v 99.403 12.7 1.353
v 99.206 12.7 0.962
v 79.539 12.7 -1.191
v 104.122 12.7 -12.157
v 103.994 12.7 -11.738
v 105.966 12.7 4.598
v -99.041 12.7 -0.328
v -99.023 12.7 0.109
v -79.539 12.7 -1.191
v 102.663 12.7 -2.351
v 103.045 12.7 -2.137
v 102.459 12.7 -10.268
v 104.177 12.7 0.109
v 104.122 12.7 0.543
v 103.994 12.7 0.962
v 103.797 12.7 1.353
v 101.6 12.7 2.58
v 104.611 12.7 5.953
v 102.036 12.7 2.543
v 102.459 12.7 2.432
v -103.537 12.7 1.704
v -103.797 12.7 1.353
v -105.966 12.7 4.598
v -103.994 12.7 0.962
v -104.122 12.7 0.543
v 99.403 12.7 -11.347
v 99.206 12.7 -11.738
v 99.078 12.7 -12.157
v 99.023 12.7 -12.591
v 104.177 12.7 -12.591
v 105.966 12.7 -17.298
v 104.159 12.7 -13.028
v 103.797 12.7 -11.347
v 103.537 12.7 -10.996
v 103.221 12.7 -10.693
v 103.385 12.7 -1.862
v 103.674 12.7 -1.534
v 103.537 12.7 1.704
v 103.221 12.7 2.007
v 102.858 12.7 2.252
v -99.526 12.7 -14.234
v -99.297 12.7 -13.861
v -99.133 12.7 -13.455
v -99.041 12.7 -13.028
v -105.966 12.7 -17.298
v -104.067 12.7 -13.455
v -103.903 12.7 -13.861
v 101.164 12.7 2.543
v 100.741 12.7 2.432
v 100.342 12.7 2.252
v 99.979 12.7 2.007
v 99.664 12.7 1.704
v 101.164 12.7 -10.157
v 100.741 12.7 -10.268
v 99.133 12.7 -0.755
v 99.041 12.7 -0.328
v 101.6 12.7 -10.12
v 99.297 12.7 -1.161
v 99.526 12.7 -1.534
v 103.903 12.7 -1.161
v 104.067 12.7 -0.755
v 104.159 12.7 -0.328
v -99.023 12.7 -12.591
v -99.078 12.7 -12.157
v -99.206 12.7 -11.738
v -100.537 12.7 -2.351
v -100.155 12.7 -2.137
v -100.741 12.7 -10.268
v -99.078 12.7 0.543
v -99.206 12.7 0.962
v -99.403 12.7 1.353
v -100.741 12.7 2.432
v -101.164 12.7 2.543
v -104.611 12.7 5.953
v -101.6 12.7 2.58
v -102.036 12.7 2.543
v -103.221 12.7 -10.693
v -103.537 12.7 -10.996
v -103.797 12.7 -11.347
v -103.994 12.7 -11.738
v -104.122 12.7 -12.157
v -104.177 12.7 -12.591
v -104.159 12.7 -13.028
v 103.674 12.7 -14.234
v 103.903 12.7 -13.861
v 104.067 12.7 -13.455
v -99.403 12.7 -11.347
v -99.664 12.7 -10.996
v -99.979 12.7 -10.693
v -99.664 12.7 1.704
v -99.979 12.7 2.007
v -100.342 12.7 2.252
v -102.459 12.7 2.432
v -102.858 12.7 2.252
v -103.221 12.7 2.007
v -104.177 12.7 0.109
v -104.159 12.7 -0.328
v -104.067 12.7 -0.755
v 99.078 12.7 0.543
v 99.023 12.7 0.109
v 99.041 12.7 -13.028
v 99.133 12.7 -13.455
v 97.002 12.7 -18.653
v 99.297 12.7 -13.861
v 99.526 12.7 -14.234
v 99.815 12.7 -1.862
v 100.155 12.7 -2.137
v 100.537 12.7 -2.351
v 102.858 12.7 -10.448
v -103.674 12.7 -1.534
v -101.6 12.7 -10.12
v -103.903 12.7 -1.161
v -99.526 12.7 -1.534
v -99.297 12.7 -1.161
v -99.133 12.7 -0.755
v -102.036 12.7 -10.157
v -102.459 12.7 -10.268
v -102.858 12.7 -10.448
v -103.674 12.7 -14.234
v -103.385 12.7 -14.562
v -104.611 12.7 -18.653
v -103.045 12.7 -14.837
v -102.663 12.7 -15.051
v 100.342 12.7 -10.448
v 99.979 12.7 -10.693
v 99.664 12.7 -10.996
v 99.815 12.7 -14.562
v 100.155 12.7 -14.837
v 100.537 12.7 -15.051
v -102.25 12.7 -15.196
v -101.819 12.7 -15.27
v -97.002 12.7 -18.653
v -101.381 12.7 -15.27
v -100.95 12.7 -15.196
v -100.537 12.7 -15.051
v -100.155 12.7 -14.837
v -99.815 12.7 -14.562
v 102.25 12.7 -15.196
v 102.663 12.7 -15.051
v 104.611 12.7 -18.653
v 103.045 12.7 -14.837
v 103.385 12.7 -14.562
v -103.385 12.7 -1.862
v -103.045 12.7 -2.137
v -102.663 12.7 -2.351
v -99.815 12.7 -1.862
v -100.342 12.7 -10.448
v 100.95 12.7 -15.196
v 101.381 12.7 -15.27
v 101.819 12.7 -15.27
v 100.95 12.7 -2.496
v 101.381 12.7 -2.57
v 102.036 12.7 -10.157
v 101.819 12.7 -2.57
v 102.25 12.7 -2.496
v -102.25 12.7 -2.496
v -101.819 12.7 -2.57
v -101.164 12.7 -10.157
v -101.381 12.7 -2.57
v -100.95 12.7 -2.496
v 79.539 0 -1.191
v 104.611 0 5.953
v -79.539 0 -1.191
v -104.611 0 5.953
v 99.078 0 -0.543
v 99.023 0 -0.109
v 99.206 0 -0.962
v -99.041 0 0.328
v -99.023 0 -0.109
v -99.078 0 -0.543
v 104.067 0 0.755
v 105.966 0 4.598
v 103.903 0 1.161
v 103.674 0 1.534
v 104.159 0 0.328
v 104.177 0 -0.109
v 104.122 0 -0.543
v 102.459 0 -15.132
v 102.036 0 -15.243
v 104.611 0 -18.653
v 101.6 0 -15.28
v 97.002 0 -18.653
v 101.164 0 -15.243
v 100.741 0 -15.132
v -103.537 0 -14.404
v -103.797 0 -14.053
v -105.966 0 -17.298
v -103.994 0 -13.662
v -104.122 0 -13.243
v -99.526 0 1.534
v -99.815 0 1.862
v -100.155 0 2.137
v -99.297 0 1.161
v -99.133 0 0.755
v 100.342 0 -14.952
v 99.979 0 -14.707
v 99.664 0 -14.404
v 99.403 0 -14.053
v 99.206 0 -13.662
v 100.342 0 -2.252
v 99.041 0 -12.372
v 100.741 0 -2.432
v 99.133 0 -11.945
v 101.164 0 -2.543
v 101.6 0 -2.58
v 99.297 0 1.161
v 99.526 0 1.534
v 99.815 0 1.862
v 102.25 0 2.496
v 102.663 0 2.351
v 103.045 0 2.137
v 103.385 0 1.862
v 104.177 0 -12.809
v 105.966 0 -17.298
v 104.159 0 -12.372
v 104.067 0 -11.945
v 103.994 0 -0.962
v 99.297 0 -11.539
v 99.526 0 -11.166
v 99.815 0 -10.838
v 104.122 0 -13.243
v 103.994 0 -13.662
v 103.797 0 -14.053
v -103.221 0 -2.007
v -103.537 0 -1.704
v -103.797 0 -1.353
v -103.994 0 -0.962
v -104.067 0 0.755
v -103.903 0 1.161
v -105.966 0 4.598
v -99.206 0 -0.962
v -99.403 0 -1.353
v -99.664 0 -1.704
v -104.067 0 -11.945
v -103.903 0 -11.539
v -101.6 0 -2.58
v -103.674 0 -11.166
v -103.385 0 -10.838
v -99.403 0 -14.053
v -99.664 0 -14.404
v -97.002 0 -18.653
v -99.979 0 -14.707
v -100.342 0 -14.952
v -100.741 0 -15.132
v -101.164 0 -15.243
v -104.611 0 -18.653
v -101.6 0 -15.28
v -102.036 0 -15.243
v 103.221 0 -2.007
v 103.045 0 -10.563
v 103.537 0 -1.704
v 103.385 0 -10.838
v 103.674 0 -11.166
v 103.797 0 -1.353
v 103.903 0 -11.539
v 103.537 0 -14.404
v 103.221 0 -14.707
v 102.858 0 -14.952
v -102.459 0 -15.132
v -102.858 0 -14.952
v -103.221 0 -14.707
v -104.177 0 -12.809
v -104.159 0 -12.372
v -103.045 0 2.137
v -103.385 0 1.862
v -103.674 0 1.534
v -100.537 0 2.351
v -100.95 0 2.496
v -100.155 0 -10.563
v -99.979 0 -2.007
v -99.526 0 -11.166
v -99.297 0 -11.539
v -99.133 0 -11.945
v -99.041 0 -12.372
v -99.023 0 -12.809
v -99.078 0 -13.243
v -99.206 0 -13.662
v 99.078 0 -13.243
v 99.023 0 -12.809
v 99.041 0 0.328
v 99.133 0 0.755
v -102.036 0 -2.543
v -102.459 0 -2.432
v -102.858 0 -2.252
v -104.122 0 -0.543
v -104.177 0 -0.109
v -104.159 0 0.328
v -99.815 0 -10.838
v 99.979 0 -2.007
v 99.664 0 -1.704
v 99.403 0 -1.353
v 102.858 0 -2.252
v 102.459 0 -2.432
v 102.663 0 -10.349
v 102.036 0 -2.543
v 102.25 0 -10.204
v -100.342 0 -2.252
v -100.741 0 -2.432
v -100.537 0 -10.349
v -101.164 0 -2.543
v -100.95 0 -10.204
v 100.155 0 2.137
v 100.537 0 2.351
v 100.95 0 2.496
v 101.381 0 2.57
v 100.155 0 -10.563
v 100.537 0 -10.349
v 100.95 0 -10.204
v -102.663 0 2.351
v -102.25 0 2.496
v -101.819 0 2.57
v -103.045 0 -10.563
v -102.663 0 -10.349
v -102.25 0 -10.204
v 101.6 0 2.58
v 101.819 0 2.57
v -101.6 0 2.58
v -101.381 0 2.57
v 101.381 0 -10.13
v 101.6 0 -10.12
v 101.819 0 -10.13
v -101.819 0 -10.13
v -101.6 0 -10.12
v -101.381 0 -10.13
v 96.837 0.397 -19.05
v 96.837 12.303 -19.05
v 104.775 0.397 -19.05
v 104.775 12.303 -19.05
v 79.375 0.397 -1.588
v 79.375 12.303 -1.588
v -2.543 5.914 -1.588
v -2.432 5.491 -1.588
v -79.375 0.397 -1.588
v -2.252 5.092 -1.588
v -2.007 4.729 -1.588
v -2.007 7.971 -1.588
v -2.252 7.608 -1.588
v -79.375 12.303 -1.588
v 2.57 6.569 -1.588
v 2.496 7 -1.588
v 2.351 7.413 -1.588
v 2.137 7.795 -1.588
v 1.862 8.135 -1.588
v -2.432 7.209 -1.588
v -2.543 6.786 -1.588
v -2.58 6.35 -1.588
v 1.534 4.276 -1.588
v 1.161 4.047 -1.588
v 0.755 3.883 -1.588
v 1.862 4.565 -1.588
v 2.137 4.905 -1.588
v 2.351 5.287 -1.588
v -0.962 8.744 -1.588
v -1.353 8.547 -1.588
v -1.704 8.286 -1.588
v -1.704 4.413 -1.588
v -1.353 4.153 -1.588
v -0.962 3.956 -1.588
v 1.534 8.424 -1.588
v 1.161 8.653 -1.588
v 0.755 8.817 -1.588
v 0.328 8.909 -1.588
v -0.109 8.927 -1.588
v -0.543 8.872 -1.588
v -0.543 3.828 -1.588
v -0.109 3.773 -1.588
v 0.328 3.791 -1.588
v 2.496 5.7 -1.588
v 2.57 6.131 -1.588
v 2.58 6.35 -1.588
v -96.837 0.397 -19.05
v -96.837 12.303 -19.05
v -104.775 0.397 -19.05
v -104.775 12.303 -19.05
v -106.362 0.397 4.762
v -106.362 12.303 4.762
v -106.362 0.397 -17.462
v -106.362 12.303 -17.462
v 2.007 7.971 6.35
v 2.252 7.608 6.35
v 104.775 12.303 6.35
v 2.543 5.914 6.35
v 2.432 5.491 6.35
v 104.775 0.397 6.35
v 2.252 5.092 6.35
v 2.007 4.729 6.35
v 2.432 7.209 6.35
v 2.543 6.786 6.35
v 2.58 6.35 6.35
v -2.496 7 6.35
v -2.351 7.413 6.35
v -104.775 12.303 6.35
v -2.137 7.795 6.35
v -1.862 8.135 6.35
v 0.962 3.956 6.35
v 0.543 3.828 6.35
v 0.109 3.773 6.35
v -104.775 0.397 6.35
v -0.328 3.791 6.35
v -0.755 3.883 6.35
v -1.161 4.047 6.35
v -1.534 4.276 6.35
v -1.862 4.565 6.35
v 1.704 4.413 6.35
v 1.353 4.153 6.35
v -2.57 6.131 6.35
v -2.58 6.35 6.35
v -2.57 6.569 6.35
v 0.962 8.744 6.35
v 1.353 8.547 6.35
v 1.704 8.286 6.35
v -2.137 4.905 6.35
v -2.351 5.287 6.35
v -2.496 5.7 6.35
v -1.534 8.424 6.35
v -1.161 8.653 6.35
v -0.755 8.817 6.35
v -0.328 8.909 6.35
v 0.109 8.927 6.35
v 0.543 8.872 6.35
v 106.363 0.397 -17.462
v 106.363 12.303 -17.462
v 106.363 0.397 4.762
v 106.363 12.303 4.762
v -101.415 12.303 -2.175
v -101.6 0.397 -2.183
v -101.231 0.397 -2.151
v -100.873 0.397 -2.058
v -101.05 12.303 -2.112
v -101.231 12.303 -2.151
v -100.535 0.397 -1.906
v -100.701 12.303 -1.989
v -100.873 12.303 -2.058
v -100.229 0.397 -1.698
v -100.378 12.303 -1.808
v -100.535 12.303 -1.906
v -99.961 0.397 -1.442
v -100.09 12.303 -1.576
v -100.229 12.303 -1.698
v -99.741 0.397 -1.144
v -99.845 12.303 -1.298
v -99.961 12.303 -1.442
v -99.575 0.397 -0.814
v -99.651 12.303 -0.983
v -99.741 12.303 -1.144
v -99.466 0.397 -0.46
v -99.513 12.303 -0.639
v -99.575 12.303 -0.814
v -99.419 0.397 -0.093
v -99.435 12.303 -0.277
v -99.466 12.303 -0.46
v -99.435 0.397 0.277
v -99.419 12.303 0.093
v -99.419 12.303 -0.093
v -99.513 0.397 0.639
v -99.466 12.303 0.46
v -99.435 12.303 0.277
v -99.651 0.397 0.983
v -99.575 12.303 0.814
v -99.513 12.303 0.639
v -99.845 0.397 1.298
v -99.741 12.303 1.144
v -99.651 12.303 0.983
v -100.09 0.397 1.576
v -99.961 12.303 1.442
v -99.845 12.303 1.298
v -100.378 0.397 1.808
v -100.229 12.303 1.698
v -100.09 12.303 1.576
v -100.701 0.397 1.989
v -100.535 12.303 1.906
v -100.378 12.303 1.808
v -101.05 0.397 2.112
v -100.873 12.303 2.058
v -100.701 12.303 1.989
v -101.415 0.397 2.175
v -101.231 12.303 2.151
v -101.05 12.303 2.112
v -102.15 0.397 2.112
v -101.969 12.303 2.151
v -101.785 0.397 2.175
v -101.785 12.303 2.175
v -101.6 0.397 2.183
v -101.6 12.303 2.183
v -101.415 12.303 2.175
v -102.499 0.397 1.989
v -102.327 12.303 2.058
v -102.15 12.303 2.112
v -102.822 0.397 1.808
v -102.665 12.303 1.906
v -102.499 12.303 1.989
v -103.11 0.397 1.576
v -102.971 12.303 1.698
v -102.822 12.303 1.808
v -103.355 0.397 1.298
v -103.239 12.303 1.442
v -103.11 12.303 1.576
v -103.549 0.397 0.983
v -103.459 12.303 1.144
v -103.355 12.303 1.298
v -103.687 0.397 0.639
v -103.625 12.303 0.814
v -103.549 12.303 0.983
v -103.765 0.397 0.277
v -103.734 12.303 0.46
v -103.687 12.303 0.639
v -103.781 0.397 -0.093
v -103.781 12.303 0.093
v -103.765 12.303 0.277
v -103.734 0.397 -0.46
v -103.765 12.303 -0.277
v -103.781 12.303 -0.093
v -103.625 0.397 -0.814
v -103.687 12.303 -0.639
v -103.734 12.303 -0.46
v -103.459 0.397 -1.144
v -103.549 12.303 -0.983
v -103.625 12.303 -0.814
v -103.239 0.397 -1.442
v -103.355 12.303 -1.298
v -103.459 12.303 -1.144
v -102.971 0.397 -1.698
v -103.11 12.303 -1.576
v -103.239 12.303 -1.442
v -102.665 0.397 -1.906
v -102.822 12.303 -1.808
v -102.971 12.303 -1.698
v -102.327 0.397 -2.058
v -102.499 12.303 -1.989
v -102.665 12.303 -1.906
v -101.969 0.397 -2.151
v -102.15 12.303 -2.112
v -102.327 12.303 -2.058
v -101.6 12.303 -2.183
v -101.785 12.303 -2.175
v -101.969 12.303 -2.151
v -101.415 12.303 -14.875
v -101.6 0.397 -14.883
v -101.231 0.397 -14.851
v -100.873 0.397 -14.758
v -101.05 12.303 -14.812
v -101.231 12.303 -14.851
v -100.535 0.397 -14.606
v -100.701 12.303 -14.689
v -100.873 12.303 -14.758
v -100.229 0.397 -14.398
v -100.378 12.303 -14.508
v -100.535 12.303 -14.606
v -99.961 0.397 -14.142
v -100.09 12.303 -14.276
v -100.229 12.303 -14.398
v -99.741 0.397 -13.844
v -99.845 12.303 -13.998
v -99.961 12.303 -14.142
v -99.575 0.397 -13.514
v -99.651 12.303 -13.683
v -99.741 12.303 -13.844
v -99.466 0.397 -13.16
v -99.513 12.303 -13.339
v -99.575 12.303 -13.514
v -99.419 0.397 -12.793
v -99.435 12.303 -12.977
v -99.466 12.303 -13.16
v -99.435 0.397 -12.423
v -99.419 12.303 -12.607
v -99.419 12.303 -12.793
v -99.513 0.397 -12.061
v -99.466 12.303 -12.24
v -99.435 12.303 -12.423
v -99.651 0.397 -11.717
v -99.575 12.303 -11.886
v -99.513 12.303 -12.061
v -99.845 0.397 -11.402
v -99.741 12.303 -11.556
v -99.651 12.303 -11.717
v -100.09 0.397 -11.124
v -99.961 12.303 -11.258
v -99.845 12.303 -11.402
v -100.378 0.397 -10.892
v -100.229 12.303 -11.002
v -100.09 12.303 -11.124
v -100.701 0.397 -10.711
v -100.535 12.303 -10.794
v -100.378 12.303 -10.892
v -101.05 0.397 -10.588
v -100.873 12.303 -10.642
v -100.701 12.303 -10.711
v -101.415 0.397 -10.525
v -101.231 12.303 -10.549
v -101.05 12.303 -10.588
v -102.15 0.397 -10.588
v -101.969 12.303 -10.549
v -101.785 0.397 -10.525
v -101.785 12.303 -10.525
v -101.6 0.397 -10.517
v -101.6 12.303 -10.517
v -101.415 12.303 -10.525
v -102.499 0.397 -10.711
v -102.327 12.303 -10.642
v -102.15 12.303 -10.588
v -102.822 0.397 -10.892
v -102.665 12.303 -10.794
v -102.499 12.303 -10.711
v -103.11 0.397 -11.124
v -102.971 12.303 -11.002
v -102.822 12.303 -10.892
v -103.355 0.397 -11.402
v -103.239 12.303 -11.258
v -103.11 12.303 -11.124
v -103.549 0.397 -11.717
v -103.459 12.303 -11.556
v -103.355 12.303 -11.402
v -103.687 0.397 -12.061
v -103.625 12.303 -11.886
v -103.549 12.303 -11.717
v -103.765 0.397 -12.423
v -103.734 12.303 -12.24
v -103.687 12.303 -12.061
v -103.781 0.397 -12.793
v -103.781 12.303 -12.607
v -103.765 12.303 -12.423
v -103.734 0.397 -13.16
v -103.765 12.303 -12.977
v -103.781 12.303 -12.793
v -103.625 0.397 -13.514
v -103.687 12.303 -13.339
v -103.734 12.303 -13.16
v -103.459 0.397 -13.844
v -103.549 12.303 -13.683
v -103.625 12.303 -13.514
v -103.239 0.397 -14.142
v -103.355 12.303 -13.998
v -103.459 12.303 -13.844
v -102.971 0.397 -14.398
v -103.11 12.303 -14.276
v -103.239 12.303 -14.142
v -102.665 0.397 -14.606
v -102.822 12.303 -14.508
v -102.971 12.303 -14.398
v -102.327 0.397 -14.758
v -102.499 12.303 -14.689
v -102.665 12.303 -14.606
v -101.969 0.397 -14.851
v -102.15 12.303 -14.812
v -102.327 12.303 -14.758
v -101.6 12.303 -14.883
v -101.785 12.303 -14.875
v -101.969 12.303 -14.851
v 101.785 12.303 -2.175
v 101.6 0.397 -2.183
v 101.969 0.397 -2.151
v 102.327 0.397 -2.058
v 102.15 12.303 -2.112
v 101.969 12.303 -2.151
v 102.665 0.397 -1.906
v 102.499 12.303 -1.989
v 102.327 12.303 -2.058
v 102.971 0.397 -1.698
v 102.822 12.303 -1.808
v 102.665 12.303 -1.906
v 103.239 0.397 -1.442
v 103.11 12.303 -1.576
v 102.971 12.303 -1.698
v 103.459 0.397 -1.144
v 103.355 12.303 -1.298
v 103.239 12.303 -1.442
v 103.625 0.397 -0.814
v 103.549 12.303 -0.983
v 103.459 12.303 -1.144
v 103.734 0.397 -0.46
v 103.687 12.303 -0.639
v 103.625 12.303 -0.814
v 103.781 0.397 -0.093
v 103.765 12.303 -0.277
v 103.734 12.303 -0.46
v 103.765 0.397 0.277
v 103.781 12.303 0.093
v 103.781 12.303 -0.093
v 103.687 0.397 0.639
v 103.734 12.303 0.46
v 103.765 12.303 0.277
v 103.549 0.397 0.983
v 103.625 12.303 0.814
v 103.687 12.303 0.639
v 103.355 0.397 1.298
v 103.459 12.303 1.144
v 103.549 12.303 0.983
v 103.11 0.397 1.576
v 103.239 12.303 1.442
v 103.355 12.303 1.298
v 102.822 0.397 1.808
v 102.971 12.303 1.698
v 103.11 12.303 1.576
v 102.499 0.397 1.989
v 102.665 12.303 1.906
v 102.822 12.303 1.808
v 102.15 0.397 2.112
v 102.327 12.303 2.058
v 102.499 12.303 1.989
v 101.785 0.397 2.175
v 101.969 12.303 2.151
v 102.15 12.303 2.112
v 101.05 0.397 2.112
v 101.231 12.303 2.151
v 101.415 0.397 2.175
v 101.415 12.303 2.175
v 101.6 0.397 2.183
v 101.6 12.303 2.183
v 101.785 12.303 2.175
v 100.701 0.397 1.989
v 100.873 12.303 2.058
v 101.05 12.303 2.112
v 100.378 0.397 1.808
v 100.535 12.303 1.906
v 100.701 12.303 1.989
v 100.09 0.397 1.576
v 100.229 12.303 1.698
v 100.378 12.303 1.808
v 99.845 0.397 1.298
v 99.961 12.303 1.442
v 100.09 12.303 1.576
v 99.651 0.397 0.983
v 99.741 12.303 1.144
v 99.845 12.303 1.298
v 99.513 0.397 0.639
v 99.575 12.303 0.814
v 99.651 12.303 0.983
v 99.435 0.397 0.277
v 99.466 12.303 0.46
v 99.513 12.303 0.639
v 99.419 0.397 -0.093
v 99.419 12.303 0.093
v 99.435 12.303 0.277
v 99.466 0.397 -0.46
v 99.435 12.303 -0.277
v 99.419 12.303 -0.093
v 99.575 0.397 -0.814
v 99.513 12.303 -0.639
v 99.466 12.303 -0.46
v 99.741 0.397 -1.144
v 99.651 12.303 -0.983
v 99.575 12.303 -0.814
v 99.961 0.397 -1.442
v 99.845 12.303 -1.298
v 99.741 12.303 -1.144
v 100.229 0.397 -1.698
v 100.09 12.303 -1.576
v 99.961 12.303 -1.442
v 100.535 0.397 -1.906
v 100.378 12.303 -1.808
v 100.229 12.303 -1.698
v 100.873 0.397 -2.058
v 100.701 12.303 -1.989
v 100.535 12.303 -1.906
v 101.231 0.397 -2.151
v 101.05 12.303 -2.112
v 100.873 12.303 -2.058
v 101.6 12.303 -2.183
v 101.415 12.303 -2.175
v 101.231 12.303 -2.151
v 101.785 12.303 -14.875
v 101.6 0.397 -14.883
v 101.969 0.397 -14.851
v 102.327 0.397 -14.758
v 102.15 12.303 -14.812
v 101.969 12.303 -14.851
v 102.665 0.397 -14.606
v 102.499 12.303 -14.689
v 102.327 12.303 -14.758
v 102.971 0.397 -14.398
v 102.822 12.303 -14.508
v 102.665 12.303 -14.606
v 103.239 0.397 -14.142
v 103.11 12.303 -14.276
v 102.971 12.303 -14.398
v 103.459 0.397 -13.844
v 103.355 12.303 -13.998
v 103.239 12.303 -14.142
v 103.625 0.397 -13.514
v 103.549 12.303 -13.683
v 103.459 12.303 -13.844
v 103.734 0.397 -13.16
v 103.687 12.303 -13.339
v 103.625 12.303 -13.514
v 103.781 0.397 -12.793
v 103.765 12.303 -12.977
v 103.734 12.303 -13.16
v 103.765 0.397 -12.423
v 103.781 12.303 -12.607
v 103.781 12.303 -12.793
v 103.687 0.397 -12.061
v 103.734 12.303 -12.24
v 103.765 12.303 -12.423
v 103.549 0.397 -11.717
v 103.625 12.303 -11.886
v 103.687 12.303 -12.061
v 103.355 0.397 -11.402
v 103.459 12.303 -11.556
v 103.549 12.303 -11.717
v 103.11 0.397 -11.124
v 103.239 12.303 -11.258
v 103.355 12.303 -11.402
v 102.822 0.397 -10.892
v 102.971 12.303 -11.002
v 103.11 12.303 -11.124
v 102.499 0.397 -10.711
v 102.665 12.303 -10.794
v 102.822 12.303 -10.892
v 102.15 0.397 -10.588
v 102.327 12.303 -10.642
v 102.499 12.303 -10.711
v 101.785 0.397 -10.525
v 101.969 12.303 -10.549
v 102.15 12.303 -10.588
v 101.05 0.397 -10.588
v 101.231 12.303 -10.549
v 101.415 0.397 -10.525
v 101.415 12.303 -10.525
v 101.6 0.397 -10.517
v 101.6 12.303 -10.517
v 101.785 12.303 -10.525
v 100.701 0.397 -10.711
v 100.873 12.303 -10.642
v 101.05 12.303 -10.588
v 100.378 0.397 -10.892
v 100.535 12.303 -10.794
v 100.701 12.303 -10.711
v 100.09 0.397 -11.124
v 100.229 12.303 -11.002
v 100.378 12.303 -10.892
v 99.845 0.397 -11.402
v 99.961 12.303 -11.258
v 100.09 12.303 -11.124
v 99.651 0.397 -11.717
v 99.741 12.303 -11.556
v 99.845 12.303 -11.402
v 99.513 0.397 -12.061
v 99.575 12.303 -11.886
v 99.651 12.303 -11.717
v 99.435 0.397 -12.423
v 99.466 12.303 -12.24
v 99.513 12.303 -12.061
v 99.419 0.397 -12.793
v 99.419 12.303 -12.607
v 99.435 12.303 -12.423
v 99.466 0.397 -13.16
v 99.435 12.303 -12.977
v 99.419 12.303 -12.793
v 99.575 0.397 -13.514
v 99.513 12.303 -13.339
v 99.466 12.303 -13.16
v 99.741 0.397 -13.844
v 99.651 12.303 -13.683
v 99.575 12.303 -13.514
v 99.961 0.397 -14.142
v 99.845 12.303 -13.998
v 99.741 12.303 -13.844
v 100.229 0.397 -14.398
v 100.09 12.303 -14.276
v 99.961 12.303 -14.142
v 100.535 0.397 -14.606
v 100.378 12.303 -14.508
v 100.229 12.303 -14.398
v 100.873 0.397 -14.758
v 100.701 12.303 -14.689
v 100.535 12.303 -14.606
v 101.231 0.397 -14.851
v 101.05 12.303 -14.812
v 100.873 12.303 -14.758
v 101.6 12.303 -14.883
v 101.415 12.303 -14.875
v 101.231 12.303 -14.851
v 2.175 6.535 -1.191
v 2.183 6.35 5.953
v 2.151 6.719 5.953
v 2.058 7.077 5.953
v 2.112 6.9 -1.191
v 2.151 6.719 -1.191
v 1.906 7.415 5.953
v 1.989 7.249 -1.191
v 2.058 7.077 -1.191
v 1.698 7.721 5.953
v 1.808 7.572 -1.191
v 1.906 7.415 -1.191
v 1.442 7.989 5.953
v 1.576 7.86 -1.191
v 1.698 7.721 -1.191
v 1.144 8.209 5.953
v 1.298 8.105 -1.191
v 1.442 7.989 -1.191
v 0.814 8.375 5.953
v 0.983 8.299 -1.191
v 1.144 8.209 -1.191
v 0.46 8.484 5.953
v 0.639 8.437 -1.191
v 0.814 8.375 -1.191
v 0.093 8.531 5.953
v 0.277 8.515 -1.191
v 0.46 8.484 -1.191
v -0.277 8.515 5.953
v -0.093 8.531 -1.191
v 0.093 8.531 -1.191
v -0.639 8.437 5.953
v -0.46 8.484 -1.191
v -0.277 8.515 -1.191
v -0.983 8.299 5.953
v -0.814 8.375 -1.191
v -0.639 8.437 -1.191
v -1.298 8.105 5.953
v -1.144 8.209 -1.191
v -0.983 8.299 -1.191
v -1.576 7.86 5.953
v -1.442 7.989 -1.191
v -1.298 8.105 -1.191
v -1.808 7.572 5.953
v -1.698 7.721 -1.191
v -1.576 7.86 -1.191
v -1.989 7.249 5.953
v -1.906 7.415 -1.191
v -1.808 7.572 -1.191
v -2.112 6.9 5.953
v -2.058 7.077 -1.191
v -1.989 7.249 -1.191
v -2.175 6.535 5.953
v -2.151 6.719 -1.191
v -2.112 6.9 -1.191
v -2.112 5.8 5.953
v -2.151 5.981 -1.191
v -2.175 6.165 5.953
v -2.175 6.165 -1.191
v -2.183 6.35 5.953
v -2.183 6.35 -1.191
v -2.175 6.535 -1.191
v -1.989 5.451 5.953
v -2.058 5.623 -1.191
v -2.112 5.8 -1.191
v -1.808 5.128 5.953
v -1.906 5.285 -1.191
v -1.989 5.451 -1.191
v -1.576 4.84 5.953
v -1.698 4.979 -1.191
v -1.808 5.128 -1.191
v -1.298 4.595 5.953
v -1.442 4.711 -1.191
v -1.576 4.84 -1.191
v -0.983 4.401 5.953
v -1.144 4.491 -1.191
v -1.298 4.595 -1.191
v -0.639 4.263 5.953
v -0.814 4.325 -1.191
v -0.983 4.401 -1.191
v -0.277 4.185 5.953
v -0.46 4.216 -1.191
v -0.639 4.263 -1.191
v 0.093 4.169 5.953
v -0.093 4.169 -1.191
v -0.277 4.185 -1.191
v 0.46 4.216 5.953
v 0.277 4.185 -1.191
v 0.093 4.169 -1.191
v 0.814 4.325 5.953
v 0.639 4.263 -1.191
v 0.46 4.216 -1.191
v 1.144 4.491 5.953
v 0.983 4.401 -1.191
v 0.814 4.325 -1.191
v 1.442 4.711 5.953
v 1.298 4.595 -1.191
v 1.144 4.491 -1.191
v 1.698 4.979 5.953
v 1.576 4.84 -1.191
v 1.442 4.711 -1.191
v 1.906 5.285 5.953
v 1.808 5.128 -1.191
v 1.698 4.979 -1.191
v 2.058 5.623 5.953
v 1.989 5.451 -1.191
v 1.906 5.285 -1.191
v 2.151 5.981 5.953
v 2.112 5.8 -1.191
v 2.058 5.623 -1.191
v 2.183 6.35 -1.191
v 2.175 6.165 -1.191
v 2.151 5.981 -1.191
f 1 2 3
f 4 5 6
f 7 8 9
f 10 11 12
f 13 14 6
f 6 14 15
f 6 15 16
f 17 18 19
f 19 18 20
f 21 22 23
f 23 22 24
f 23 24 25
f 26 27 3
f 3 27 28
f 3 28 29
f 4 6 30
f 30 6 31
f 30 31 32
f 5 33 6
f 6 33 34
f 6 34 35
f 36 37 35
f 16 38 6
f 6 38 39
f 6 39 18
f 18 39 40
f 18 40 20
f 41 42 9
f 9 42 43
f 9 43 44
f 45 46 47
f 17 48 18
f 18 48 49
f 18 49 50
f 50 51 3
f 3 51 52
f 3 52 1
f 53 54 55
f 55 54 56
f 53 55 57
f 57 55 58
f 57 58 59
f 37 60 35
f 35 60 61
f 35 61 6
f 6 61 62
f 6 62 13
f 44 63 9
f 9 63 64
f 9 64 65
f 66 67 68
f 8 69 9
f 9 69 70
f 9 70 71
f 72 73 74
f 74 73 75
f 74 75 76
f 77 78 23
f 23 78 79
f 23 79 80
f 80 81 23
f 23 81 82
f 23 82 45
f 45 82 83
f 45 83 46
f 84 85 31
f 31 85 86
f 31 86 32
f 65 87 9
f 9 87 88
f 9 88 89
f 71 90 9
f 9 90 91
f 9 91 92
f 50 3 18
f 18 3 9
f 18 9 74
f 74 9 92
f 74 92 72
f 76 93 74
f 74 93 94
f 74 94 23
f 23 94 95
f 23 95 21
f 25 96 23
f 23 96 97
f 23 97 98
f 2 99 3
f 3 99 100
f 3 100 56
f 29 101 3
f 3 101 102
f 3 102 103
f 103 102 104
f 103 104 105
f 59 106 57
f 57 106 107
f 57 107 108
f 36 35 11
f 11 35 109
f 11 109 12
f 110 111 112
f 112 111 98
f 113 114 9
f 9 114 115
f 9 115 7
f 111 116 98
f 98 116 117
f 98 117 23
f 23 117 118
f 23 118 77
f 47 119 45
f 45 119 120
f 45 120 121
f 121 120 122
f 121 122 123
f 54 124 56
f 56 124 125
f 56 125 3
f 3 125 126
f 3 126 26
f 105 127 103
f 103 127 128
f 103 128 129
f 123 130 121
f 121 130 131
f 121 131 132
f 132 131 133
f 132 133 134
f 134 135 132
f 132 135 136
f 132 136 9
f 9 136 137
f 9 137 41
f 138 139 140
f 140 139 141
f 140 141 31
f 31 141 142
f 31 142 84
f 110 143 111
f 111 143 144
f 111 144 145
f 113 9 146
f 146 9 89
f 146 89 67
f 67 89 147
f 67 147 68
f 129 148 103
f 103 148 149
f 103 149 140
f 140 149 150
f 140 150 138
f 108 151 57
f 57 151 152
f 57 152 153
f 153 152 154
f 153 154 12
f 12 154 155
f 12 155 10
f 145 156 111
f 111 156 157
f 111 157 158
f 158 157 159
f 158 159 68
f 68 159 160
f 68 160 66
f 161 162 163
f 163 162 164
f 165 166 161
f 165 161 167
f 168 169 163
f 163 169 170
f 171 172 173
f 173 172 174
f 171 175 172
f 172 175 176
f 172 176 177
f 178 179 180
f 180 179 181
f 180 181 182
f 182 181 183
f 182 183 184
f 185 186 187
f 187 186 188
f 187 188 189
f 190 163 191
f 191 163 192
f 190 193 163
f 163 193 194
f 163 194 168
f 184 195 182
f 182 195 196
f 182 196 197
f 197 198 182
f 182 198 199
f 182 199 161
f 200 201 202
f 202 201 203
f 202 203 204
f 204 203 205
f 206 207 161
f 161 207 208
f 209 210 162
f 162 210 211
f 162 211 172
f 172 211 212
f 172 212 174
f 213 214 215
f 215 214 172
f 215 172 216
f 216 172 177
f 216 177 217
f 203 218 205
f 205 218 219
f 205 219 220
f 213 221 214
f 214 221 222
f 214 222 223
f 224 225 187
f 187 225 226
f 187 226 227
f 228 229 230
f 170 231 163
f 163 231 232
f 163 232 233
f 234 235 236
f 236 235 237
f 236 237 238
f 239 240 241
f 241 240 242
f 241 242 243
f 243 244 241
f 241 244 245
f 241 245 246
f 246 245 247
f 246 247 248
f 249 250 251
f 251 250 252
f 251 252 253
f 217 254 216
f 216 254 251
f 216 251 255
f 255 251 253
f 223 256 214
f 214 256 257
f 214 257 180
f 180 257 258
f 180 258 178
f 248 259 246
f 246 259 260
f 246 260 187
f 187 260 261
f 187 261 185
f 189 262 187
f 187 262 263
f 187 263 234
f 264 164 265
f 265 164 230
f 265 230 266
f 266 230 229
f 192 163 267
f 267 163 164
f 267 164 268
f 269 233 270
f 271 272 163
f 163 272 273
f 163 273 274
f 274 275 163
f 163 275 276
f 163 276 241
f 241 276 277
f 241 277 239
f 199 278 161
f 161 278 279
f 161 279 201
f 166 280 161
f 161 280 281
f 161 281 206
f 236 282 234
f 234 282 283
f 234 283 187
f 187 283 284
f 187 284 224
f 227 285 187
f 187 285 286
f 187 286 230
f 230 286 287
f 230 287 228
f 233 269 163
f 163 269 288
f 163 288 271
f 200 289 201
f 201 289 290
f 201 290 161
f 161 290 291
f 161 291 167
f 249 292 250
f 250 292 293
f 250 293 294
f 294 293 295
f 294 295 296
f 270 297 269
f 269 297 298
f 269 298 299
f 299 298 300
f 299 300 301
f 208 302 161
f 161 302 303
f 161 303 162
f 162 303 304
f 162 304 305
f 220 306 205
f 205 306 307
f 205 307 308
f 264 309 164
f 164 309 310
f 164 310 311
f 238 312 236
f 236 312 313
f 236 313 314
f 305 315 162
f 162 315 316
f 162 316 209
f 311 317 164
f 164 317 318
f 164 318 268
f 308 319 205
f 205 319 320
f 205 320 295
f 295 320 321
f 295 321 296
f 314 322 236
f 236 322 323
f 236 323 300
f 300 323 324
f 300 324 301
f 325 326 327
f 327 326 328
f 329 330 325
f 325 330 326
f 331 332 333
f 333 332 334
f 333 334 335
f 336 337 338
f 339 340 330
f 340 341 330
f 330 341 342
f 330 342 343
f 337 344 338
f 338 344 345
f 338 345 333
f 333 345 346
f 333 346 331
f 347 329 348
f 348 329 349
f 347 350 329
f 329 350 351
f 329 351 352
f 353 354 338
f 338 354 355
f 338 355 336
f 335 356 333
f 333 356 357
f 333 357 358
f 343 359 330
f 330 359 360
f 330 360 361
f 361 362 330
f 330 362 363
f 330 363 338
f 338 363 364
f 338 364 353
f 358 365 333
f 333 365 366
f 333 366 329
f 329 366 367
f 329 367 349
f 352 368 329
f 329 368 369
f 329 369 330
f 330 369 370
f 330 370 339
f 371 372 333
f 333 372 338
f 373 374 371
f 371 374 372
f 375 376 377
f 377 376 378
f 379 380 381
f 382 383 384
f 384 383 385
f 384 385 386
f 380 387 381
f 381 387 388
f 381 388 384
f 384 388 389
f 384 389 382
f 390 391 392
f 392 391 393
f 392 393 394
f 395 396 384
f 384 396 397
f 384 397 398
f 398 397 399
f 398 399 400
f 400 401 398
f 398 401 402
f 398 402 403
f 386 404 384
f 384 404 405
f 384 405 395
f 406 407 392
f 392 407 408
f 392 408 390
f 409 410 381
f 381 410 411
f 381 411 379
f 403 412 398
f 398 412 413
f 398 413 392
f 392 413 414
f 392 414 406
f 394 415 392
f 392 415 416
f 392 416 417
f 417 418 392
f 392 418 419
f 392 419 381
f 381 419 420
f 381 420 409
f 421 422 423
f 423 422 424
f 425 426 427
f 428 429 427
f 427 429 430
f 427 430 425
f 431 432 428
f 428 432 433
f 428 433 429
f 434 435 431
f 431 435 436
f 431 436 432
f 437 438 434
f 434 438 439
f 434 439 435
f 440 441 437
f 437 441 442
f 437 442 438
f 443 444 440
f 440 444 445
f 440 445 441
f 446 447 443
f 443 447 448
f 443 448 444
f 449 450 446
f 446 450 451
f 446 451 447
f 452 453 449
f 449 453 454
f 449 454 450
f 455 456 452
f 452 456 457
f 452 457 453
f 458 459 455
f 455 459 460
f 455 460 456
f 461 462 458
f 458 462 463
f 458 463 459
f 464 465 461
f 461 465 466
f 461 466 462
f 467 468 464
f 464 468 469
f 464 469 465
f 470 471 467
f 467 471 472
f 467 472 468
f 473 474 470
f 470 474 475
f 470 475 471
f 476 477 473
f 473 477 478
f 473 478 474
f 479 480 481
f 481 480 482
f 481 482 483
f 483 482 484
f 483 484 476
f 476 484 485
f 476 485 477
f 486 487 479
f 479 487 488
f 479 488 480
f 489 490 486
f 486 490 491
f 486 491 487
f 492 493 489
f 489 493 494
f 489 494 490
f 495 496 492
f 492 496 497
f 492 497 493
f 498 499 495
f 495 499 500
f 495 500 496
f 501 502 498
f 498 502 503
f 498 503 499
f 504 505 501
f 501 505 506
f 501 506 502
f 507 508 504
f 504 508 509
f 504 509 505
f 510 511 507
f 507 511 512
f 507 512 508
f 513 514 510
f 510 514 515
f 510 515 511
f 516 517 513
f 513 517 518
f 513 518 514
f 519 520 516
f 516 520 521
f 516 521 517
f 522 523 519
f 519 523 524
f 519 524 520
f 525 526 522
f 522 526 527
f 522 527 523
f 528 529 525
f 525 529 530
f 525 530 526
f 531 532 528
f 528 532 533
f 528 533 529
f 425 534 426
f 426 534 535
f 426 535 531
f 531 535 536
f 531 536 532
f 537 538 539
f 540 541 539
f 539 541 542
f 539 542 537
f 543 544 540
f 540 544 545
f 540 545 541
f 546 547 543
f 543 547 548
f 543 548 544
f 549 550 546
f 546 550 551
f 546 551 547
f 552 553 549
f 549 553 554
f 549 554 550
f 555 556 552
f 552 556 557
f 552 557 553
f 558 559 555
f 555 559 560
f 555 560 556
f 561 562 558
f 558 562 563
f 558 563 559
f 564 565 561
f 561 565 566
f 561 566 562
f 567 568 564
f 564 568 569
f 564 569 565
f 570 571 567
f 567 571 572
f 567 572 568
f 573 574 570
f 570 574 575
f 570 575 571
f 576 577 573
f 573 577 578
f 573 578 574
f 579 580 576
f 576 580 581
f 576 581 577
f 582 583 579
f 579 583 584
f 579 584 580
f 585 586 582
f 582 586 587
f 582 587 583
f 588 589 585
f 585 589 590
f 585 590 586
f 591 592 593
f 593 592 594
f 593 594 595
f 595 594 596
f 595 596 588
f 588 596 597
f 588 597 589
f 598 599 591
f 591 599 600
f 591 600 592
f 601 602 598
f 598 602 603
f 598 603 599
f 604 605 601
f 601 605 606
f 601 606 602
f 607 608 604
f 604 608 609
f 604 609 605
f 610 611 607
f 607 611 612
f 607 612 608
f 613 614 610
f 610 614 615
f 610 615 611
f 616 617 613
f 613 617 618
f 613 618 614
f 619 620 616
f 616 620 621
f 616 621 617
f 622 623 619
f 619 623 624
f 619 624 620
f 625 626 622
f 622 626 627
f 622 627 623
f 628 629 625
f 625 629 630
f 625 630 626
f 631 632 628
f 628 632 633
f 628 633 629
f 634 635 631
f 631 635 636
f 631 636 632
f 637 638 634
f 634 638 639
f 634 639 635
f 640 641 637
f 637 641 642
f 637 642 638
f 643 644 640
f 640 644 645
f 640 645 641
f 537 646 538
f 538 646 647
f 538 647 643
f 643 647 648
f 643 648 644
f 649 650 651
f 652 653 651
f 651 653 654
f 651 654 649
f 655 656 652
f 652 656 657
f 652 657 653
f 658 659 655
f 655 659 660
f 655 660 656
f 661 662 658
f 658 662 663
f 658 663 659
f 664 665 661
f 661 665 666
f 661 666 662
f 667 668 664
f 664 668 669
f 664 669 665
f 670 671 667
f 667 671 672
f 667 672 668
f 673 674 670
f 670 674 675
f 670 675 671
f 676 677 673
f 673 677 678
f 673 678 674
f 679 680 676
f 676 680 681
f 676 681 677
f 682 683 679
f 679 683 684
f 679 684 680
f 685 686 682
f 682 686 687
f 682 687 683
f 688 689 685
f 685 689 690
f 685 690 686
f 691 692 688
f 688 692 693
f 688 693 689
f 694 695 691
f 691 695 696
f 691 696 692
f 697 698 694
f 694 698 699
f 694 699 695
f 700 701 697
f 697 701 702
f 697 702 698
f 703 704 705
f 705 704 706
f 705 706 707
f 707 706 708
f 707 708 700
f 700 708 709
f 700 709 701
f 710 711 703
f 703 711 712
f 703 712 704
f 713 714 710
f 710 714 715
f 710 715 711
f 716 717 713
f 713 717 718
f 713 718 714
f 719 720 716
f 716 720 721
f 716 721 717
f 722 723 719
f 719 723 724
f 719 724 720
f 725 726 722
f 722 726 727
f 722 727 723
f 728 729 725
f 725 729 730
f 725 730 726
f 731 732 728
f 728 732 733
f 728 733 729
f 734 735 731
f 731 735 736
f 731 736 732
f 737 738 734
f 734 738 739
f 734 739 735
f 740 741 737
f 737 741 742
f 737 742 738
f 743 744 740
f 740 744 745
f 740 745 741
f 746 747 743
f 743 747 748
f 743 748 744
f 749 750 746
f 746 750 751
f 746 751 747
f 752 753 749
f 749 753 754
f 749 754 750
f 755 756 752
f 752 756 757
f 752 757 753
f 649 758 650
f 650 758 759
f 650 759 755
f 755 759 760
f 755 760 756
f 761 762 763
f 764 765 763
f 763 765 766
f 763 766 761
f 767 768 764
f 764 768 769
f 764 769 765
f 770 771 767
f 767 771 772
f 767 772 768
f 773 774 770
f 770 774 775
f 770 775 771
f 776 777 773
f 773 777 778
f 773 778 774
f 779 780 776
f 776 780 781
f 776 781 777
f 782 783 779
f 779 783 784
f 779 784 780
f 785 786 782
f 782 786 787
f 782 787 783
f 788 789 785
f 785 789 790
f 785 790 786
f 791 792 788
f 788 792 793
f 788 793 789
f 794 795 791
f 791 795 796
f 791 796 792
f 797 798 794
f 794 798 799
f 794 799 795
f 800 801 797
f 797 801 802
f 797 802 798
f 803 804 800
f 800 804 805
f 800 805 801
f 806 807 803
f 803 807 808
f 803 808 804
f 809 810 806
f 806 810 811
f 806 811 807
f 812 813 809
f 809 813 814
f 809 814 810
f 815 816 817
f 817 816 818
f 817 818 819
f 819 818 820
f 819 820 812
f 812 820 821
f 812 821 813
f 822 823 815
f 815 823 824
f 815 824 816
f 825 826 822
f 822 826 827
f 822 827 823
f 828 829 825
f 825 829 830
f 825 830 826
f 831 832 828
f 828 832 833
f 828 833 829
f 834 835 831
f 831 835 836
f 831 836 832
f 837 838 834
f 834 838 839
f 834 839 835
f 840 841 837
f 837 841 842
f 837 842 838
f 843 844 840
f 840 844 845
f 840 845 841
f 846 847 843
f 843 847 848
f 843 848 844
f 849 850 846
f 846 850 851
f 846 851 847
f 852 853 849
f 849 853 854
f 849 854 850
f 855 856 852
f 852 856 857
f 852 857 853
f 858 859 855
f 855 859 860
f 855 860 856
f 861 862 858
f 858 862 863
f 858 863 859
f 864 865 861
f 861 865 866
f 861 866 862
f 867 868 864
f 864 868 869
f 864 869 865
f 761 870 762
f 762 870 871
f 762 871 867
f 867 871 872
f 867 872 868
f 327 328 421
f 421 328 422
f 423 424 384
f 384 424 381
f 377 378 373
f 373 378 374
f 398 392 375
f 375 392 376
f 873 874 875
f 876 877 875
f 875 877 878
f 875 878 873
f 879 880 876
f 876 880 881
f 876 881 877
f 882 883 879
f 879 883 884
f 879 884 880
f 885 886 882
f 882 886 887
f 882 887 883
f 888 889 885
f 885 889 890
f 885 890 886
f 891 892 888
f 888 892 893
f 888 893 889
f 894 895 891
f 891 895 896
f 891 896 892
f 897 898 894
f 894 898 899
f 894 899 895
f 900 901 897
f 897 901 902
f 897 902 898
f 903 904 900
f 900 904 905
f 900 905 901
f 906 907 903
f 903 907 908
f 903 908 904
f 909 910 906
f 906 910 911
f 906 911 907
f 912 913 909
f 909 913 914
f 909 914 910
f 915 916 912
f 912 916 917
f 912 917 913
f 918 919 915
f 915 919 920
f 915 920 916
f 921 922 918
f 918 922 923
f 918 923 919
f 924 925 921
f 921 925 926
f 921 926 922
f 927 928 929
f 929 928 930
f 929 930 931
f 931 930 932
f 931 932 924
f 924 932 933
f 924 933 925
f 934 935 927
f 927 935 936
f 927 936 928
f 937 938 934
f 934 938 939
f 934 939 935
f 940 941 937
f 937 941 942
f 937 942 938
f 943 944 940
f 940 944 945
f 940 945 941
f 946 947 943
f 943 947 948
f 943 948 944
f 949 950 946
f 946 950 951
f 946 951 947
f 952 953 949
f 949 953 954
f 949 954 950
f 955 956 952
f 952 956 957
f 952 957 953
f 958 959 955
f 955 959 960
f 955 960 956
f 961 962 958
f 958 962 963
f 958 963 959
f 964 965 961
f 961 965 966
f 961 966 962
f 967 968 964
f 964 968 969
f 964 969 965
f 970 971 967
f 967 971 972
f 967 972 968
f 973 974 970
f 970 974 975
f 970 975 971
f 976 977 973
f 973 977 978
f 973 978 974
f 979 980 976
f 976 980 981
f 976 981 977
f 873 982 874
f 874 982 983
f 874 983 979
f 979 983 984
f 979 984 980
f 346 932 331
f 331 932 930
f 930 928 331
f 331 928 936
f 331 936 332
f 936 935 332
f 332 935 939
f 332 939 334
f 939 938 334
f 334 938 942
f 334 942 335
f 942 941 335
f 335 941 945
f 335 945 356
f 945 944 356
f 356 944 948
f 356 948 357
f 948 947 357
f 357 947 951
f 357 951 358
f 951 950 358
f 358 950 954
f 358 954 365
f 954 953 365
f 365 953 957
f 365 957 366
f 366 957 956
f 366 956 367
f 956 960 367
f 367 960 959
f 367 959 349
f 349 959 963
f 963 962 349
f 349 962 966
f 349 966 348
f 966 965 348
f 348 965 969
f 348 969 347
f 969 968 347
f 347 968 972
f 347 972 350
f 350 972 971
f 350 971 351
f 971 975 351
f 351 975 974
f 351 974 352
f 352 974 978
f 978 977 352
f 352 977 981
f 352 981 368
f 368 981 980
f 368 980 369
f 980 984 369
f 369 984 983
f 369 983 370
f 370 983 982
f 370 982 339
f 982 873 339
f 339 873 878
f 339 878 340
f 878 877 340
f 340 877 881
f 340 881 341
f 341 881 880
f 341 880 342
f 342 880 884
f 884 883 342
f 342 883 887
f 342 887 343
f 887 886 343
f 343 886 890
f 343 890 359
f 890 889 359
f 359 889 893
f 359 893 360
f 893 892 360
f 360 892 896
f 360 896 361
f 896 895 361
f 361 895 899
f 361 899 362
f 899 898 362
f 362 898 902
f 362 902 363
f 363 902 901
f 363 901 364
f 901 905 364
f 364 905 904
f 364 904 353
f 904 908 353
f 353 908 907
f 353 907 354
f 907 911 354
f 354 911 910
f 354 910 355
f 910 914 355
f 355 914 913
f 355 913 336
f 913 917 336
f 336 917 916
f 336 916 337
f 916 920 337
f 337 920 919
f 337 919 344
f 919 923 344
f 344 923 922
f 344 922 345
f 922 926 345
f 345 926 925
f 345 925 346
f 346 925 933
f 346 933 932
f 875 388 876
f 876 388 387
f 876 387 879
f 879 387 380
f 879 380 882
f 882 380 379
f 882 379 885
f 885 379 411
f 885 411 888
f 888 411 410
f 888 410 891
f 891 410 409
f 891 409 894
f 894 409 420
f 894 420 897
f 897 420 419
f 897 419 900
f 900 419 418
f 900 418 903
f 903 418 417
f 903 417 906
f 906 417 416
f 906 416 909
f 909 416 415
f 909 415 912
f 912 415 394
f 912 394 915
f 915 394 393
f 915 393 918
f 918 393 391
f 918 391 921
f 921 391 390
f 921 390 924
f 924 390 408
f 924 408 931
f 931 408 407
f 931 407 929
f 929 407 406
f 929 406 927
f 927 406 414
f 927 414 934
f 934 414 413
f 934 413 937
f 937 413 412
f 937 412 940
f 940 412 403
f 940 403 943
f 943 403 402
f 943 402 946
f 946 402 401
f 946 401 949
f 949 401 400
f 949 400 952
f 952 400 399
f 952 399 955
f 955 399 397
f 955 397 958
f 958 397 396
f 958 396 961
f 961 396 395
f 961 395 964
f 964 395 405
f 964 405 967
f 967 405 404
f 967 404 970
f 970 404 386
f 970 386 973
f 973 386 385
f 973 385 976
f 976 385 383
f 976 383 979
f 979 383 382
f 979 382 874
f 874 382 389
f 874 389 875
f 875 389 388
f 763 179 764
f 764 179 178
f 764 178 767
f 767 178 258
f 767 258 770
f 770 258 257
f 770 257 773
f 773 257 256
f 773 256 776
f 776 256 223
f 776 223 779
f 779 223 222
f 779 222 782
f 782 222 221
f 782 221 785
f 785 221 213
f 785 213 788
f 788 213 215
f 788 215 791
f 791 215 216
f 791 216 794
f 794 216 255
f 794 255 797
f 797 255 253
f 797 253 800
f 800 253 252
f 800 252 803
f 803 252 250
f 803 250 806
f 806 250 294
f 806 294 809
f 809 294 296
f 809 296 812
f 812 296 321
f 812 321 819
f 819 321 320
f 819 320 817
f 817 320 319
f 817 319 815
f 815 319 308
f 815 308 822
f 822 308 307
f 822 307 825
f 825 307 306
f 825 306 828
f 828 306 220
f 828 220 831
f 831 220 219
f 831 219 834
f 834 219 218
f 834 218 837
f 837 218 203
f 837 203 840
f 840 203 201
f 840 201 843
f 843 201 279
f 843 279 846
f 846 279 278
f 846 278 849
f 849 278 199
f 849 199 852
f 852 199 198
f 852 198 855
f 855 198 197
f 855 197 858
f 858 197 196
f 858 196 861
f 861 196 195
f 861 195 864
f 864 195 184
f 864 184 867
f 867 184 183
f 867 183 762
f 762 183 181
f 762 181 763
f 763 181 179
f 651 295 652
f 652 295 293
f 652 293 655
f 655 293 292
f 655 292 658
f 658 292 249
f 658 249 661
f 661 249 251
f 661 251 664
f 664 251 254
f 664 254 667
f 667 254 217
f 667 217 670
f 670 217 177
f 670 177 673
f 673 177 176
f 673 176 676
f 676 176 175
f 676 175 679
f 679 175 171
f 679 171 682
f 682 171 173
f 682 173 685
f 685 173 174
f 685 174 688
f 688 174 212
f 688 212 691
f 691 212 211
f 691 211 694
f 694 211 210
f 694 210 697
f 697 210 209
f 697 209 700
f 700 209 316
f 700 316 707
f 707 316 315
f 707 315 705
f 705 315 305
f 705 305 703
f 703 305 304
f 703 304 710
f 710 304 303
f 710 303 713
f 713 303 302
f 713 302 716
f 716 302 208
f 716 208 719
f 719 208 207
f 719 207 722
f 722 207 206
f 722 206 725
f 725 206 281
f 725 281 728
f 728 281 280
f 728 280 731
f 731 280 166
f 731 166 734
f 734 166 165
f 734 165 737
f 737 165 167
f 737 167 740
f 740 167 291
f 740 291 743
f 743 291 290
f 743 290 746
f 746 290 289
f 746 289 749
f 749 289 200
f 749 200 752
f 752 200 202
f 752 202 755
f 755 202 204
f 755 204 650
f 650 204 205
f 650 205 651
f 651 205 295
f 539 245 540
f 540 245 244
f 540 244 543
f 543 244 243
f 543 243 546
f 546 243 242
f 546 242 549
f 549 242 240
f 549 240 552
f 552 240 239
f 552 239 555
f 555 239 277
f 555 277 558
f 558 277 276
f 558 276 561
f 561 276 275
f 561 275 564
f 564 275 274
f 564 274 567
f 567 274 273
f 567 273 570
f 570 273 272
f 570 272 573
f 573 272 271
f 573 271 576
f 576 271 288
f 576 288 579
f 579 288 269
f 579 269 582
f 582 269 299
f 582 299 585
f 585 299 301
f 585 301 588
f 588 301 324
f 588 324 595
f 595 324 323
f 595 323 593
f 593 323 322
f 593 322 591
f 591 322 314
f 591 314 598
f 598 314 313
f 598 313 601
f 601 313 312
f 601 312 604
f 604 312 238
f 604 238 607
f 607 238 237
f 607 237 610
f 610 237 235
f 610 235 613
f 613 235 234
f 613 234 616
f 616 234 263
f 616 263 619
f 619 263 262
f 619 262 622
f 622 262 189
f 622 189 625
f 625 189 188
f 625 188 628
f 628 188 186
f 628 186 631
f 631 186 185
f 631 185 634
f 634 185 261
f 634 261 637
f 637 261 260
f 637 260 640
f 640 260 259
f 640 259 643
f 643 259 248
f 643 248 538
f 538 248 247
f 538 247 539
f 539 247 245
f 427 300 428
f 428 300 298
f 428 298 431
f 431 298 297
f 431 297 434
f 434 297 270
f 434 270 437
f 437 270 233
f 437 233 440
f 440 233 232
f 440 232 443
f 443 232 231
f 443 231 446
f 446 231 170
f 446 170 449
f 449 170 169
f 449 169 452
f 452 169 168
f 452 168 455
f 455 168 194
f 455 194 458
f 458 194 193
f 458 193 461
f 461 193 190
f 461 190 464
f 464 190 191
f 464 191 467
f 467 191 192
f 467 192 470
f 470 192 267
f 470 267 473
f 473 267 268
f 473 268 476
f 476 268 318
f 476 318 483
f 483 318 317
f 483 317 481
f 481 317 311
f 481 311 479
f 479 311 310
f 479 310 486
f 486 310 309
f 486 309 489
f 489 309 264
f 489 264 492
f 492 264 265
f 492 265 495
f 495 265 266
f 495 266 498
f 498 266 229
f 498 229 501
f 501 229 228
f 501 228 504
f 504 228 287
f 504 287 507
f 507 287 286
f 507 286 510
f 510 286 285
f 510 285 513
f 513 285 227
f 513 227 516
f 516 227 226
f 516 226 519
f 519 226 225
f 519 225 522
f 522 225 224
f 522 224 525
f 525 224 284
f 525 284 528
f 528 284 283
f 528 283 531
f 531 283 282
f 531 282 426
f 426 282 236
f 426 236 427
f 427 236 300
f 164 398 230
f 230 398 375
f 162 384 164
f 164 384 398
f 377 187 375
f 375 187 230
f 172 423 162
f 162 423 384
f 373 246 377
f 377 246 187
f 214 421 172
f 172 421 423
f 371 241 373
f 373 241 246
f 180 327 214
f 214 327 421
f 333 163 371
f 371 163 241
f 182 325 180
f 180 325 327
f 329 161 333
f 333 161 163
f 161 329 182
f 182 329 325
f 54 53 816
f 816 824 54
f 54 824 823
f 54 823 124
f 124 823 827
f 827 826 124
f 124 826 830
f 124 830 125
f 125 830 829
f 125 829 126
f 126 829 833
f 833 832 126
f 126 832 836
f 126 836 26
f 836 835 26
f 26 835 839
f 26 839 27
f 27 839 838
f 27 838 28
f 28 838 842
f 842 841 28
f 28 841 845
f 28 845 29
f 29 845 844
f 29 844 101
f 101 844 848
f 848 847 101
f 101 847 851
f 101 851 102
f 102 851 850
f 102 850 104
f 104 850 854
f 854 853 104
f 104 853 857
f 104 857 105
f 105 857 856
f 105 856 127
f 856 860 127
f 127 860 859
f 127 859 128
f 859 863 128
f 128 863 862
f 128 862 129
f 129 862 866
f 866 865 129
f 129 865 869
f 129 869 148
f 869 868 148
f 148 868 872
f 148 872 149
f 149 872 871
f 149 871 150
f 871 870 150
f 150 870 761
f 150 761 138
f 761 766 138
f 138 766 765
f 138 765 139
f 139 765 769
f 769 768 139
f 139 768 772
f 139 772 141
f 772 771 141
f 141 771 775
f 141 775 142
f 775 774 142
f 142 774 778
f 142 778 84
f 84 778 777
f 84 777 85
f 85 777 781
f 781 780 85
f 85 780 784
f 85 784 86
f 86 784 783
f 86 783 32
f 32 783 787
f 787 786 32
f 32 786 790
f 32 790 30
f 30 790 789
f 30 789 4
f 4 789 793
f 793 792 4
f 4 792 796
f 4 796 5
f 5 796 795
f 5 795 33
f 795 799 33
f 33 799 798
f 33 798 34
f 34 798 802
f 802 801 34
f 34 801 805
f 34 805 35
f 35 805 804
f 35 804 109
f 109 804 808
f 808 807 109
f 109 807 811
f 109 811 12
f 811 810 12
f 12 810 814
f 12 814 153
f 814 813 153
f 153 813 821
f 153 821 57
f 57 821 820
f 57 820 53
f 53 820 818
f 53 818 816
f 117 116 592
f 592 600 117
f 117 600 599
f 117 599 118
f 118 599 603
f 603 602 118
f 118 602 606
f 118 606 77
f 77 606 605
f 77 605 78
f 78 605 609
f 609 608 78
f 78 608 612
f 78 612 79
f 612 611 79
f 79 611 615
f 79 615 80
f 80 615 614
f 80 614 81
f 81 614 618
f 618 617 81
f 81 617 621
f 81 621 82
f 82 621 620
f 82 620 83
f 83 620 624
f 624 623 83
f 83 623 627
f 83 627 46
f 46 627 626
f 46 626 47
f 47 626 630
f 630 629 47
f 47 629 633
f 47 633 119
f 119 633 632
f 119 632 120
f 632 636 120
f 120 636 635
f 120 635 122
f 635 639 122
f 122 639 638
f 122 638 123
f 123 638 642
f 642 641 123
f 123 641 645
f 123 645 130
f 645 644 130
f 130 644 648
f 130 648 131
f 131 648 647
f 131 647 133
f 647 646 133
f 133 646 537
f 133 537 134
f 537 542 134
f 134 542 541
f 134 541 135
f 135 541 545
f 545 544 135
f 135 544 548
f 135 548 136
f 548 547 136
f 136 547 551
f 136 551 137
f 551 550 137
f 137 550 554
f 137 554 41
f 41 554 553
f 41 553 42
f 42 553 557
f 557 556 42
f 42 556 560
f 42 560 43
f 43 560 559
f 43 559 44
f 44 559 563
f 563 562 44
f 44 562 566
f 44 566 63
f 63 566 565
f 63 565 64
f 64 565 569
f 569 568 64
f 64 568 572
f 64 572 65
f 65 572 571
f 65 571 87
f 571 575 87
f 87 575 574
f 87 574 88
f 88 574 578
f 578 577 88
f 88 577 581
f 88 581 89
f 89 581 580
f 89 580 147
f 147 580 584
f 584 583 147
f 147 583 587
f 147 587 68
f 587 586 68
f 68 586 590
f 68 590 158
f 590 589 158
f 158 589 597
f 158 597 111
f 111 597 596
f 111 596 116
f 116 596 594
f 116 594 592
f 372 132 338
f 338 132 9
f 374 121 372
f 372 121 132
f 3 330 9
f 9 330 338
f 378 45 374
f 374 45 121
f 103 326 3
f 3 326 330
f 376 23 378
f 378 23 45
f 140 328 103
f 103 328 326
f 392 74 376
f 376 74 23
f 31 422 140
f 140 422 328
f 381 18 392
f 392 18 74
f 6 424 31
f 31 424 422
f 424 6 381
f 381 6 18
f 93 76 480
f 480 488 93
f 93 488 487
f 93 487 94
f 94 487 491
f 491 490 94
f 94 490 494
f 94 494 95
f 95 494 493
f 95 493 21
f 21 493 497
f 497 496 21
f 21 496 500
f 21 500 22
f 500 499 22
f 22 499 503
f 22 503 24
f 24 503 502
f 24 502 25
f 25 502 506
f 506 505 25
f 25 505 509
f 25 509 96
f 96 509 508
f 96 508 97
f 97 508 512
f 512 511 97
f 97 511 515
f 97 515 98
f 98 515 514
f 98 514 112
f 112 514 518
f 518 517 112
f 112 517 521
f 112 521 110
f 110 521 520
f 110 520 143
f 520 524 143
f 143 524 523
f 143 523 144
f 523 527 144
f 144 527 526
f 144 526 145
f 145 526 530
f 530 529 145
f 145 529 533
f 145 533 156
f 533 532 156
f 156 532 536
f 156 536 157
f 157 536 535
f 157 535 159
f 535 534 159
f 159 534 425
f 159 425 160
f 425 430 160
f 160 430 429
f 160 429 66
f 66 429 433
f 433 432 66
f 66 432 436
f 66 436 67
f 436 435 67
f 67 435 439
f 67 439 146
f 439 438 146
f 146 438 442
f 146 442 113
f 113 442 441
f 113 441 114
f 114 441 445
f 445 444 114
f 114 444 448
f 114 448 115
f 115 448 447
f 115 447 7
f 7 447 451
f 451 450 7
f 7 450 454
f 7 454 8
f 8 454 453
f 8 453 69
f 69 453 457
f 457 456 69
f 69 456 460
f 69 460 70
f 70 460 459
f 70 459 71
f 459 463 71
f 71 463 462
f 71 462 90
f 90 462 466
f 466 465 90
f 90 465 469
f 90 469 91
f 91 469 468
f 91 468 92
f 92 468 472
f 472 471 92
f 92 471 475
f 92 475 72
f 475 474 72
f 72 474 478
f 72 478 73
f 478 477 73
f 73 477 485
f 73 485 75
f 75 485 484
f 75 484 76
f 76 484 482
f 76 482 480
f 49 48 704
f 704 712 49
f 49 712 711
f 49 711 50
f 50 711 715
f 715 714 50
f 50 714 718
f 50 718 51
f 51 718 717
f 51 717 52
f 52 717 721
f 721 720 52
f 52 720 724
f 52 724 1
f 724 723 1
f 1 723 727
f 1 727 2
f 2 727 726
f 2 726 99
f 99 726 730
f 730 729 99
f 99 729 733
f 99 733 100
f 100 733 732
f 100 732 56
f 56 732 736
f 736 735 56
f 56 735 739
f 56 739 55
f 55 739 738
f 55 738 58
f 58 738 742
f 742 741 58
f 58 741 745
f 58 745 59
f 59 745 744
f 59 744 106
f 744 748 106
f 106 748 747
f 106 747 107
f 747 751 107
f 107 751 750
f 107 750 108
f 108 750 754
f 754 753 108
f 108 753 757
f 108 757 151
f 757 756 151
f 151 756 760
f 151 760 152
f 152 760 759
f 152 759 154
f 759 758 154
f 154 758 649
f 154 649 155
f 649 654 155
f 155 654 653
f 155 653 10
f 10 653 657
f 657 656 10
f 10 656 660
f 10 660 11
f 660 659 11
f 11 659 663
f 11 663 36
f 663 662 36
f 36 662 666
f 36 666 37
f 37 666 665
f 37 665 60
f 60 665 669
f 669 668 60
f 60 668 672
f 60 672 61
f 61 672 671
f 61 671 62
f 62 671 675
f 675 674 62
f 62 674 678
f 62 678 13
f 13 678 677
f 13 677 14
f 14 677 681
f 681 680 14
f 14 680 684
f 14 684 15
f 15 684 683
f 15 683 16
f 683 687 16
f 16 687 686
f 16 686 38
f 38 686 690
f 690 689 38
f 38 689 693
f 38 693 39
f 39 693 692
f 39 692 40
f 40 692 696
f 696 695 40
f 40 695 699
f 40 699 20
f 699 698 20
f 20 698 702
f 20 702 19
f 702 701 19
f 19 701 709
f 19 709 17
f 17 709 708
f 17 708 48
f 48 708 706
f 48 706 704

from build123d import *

# Parameters (mm, degrees)
SKETCH1_R               = 2.1828125
BOSS_EXTRUDE1_DEPTH     = 12.7
CHAMFER1_SIZE           = 1.5875
SKETCH2_R               = 2.1828125
CUT_EXTRUDE1_DEPTH      = 1
CUT_EXTRUDE1_DEPTH_BACK = 26.4
CHAMFER2_SIZE           = 0.396875


with BuildPart() as part:
    # Sketch1 → Boss-Extrude1 (new body)
    with BuildSketch(Plane(origin=(0, 0, 0), x_dir=(1, 0, 0), z_dir=(0, 1, 0))):
        Polygon((-106.3625, -6.35), (106.3625, -6.35), (106.3625, 19.05), (96.8375, 19.05), (79.375, 1.5875), (-79.375, 1.5875), (-96.8375, 19.05), (-106.3625, 19.05), align=None)
        with Locations((-101.6, 0)):
            Circle(SKETCH1_R, mode=Mode.SUBTRACT)
        with Locations((-101.6, 12.7)):
            Circle(SKETCH1_R, mode=Mode.SUBTRACT)
        with Locations((101.6, 0)):
            Circle(SKETCH1_R, mode=Mode.SUBTRACT)
        with Locations((101.6, 12.7)):
            Circle(SKETCH1_R, mode=Mode.SUBTRACT)
    extrude(amount=BOSS_EXTRUDE1_DEPTH)

    # Chamfer1
    chamfer1_edges = [part.edges().sort_by_distance(p)[0] for p in [
        (106.3625, 6.35, -19.05),
        (106.3625, 6.35, 6.35),
        (-106.3625, 6.35, 6.35),
        (-106.3625, 6.35, -19.05),
    ]]
    chamfer(chamfer1_edges, length=CHAMFER1_SIZE)

    # Sketch2 → Cut-Extrude1 (cut, two sides)
    with BuildSketch(Plane.XY.offset(6.35)) as cut_extrude1_sk:
        with Locations((0, 6.35)):
            Circle(SKETCH2_R)
    extrude(amount=CUT_EXTRUDE1_DEPTH, mode=Mode.SUBTRACT)
    extrude(cut_extrude1_sk.sketch, amount=-CUT_EXTRUDE1_DEPTH_BACK, mode=Mode.SUBTRACT)

    # Chamfer2
    chamfer2_edges = [part.edges().sort_by_distance(p)[0] for p in [
        (-88.10625, 0, -10.31875),
        (0, 0, -1.5875),
        (88.10625, 0, -10.31875),
        (0, 12.7, -1.5875),
        (-88.10625, 12.7, -10.31875),
        (-100.80625, 12.7, -19.05),
        (-103.7828125, 0, 0),
        (-103.7828125, 12.7, 0),
        (-103.7828125, 0, -12.7),
        (-103.7828125, 12.7, -12.7),
        (99.4171875, 0, 0),
        (99.4171875, 12.7, 0),
        (99.4171875, 0, -12.7),
        (99.4171875, 12.7, -12.7),
        (100.80625, 0, -19.05),
        (100.80625, 12.7, -19.05),
        (106.3625, 0, -6.35),
        (0, 0, 6.35),
        (-106.3625, 0, -6.35),
        (-105.56875, 0, 5.55625),
        (-105.56875, 0, -18.25625),
        (105.56875, 0, 5.55625),
        (105.56875, 0, -18.25625),
        (106.3625, 12.7, -6.35),
        (-106.3625, 12.7, -6.35),
        (0, 12.7, 6.35),
        (-105.56875, 12.7, 5.55625),
        (-105.56875, 12.7, -18.25625),
        (105.56875, 12.7, 5.55625),
        (105.56875, 12.7, -18.25625),
        (-2.1828125, 6.35, 6.35),
        (-2.1828125, 6.35, -1.5875),
        (88.10625, 12.7, -10.31875),
        (-100.80625, 0, -19.05),
    ]]
    chamfer(chamfer2_edges, length=CHAMFER2_SIZE)


solid = part.part
